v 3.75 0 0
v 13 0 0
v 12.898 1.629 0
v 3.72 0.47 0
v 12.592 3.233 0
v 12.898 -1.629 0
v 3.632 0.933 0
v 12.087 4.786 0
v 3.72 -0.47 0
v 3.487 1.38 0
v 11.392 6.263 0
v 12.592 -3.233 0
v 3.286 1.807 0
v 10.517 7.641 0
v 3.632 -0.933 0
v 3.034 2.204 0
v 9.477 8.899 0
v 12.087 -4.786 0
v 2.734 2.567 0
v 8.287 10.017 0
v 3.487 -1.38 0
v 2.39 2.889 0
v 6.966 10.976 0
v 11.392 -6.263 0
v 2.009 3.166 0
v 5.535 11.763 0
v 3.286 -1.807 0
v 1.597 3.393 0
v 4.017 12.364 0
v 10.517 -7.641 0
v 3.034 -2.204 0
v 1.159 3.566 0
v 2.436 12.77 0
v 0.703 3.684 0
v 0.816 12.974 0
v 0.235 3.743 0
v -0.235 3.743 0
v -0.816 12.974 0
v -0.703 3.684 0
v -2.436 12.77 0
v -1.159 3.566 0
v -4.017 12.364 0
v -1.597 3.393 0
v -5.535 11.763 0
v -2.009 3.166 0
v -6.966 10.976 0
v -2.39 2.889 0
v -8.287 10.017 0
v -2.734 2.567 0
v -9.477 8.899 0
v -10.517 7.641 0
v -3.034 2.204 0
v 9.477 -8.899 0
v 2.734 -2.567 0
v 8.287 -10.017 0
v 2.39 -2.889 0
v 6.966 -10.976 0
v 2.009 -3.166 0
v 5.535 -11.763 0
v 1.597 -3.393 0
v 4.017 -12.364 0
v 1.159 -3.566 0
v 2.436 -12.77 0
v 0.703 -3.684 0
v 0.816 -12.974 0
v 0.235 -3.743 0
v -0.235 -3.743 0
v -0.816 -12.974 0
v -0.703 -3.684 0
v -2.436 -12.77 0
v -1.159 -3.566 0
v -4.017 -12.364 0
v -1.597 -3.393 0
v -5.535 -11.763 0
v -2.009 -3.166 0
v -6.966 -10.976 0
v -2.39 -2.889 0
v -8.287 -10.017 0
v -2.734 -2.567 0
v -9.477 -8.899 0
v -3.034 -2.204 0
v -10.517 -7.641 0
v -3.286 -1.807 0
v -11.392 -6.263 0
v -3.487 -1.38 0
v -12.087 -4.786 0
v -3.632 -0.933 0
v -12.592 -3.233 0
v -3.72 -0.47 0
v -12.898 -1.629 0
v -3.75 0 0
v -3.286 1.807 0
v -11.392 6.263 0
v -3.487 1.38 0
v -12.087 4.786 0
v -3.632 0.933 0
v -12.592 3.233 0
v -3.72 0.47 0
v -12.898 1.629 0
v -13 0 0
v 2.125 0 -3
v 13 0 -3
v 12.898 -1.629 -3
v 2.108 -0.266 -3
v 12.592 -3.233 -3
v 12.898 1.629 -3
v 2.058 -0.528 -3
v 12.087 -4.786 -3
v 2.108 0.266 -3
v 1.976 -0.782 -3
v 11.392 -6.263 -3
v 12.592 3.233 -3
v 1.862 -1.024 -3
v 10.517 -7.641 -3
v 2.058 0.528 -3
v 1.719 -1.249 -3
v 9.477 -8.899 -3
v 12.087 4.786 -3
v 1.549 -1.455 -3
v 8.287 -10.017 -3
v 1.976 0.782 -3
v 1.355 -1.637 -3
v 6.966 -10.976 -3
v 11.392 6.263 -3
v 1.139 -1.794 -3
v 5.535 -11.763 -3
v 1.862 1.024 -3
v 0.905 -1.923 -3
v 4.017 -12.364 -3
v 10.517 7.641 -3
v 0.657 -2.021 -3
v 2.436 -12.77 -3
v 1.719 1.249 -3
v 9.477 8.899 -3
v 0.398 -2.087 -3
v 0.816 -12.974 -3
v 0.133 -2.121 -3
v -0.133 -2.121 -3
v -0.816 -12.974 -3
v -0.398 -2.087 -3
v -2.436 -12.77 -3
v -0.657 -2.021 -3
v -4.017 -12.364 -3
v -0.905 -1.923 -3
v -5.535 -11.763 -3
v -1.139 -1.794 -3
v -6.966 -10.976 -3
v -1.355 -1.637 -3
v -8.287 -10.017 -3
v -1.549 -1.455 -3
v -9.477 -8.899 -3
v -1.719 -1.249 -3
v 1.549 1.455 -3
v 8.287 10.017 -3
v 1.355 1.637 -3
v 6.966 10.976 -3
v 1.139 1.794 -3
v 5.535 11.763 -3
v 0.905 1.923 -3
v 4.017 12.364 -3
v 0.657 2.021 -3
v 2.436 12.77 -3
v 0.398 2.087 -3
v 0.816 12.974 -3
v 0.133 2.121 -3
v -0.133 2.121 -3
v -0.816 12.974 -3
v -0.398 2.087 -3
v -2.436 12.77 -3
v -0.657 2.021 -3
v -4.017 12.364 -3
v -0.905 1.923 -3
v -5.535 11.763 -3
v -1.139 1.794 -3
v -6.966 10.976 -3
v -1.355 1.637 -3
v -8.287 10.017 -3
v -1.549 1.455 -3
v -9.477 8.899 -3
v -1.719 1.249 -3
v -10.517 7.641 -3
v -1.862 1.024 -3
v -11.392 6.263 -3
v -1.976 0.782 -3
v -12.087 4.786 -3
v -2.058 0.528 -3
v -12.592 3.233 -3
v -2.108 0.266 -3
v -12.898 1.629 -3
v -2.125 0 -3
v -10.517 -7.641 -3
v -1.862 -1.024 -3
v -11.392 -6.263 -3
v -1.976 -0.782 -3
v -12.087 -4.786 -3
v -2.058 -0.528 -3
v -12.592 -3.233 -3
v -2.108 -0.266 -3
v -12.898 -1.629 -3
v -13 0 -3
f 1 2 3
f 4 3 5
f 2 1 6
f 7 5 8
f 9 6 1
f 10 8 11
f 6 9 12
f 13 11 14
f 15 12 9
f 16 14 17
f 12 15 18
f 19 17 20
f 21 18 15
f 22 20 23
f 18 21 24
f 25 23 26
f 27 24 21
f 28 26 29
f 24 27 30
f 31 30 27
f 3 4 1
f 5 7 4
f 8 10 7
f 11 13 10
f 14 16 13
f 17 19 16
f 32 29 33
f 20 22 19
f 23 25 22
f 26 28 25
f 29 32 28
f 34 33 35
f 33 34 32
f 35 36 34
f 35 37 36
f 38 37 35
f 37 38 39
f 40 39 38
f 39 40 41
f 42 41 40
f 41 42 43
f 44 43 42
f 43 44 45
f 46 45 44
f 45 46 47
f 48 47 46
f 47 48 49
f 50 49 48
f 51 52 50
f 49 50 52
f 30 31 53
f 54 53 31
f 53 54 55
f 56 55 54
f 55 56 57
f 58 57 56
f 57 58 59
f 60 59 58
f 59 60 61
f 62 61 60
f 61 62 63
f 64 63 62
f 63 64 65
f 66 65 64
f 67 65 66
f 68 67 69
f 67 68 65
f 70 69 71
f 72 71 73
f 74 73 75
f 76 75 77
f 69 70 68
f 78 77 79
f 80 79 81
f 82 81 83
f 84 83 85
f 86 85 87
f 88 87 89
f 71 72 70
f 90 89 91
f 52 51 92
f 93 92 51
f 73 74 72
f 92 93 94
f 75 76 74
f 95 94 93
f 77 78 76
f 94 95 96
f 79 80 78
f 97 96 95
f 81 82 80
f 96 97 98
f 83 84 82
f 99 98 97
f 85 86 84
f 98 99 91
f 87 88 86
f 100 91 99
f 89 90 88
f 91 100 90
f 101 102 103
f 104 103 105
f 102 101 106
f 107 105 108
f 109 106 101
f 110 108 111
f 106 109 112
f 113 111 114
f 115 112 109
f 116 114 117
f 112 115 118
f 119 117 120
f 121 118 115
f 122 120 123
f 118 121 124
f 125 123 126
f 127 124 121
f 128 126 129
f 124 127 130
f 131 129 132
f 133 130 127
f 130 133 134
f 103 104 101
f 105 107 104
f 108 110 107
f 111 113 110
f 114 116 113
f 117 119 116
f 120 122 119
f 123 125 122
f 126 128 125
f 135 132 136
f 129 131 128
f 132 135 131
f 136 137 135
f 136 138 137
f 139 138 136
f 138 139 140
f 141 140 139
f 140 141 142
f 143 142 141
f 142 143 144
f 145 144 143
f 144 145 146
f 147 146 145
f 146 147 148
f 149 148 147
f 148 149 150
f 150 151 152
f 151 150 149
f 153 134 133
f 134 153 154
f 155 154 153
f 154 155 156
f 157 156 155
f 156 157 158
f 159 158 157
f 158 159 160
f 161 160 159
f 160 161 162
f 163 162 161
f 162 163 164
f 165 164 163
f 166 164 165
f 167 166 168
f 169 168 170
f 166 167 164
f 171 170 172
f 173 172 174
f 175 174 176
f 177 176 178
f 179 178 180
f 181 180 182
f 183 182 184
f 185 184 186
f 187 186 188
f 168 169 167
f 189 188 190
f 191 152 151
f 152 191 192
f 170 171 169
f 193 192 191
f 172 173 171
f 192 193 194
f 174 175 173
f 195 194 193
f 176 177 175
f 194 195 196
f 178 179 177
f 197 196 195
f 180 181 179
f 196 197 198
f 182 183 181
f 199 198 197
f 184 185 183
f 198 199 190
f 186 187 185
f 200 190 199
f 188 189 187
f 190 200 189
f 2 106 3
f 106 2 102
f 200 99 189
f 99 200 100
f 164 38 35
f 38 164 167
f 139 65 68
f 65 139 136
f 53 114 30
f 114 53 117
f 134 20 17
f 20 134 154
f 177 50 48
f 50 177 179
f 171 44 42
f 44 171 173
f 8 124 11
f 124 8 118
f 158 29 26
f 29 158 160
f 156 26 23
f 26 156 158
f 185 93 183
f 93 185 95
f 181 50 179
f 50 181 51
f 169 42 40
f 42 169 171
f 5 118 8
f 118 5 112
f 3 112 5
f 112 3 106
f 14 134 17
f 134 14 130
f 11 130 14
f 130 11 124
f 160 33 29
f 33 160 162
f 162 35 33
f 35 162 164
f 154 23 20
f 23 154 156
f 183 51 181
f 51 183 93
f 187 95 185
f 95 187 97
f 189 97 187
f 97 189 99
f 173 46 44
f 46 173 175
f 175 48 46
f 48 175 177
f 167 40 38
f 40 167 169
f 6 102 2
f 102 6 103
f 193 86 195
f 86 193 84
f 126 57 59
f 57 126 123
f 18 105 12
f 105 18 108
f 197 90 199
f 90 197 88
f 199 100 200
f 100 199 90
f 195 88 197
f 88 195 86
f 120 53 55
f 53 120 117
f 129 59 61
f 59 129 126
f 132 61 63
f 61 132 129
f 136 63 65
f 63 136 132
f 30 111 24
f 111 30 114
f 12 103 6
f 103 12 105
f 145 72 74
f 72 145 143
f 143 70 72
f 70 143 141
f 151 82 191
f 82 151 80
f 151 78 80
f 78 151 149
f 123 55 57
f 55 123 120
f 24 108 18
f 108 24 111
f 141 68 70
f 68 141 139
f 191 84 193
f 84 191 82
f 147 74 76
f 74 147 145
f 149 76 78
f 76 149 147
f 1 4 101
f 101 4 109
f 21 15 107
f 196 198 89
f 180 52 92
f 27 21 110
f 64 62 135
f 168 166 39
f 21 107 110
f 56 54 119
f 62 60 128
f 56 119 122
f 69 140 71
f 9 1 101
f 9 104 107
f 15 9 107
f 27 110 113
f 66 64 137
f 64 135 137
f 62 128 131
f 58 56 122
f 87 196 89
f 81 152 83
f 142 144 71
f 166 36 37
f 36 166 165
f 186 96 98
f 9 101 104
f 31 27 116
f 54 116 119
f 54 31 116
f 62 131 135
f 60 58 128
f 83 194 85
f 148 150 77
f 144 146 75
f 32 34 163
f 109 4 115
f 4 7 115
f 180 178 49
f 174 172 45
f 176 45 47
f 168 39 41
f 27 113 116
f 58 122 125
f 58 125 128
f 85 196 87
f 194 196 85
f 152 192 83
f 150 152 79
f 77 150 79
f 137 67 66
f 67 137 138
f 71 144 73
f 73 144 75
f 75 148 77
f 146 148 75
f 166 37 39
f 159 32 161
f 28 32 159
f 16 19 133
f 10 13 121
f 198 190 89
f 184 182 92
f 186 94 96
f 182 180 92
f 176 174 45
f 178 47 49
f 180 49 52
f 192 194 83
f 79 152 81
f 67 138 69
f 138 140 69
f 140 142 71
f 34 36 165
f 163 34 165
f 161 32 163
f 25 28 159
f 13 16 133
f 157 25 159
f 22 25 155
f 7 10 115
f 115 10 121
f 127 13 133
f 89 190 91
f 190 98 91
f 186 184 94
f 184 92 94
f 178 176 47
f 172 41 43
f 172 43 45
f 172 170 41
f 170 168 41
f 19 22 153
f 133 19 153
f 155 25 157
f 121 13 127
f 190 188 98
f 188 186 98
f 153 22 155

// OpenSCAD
$fn = 50;


difference() {
	union() {
		translate(v = [0, 0, -3.0000000000]) {
			cylinder(h = 3, r = 10.0000000000);
		}
		translate(v = [0, 0, -3.0000000000]) {
			cylinder(h = 3, r = 13.0000000000);
		}
	}
	union() {
		translate(v = [0, 0, 0]) {
			rotate(a = [0, 0, 0]) {
				difference() {
					union() {
						#translate(v = [0, 0, -3.0000000000]) {
							cylinder(h = 3, r = 2.0000000000);
						}
						#translate(v = [0, 0, -3]) {
							cylinder(h = 3, r1 = 2.1250000000, r2 = 3.7500000000);
						}
						#translate(v = [0, 0, -3.0000000000]) {
							cylinder(h = 3, r = 2.1250000000);
						}
						#translate(v = [0, 0, -3.0000000000]) {
							cylinder(h = 3, r = 2.0000000000);
						}
					}
					union();
				}
			}
		}
	}
}
